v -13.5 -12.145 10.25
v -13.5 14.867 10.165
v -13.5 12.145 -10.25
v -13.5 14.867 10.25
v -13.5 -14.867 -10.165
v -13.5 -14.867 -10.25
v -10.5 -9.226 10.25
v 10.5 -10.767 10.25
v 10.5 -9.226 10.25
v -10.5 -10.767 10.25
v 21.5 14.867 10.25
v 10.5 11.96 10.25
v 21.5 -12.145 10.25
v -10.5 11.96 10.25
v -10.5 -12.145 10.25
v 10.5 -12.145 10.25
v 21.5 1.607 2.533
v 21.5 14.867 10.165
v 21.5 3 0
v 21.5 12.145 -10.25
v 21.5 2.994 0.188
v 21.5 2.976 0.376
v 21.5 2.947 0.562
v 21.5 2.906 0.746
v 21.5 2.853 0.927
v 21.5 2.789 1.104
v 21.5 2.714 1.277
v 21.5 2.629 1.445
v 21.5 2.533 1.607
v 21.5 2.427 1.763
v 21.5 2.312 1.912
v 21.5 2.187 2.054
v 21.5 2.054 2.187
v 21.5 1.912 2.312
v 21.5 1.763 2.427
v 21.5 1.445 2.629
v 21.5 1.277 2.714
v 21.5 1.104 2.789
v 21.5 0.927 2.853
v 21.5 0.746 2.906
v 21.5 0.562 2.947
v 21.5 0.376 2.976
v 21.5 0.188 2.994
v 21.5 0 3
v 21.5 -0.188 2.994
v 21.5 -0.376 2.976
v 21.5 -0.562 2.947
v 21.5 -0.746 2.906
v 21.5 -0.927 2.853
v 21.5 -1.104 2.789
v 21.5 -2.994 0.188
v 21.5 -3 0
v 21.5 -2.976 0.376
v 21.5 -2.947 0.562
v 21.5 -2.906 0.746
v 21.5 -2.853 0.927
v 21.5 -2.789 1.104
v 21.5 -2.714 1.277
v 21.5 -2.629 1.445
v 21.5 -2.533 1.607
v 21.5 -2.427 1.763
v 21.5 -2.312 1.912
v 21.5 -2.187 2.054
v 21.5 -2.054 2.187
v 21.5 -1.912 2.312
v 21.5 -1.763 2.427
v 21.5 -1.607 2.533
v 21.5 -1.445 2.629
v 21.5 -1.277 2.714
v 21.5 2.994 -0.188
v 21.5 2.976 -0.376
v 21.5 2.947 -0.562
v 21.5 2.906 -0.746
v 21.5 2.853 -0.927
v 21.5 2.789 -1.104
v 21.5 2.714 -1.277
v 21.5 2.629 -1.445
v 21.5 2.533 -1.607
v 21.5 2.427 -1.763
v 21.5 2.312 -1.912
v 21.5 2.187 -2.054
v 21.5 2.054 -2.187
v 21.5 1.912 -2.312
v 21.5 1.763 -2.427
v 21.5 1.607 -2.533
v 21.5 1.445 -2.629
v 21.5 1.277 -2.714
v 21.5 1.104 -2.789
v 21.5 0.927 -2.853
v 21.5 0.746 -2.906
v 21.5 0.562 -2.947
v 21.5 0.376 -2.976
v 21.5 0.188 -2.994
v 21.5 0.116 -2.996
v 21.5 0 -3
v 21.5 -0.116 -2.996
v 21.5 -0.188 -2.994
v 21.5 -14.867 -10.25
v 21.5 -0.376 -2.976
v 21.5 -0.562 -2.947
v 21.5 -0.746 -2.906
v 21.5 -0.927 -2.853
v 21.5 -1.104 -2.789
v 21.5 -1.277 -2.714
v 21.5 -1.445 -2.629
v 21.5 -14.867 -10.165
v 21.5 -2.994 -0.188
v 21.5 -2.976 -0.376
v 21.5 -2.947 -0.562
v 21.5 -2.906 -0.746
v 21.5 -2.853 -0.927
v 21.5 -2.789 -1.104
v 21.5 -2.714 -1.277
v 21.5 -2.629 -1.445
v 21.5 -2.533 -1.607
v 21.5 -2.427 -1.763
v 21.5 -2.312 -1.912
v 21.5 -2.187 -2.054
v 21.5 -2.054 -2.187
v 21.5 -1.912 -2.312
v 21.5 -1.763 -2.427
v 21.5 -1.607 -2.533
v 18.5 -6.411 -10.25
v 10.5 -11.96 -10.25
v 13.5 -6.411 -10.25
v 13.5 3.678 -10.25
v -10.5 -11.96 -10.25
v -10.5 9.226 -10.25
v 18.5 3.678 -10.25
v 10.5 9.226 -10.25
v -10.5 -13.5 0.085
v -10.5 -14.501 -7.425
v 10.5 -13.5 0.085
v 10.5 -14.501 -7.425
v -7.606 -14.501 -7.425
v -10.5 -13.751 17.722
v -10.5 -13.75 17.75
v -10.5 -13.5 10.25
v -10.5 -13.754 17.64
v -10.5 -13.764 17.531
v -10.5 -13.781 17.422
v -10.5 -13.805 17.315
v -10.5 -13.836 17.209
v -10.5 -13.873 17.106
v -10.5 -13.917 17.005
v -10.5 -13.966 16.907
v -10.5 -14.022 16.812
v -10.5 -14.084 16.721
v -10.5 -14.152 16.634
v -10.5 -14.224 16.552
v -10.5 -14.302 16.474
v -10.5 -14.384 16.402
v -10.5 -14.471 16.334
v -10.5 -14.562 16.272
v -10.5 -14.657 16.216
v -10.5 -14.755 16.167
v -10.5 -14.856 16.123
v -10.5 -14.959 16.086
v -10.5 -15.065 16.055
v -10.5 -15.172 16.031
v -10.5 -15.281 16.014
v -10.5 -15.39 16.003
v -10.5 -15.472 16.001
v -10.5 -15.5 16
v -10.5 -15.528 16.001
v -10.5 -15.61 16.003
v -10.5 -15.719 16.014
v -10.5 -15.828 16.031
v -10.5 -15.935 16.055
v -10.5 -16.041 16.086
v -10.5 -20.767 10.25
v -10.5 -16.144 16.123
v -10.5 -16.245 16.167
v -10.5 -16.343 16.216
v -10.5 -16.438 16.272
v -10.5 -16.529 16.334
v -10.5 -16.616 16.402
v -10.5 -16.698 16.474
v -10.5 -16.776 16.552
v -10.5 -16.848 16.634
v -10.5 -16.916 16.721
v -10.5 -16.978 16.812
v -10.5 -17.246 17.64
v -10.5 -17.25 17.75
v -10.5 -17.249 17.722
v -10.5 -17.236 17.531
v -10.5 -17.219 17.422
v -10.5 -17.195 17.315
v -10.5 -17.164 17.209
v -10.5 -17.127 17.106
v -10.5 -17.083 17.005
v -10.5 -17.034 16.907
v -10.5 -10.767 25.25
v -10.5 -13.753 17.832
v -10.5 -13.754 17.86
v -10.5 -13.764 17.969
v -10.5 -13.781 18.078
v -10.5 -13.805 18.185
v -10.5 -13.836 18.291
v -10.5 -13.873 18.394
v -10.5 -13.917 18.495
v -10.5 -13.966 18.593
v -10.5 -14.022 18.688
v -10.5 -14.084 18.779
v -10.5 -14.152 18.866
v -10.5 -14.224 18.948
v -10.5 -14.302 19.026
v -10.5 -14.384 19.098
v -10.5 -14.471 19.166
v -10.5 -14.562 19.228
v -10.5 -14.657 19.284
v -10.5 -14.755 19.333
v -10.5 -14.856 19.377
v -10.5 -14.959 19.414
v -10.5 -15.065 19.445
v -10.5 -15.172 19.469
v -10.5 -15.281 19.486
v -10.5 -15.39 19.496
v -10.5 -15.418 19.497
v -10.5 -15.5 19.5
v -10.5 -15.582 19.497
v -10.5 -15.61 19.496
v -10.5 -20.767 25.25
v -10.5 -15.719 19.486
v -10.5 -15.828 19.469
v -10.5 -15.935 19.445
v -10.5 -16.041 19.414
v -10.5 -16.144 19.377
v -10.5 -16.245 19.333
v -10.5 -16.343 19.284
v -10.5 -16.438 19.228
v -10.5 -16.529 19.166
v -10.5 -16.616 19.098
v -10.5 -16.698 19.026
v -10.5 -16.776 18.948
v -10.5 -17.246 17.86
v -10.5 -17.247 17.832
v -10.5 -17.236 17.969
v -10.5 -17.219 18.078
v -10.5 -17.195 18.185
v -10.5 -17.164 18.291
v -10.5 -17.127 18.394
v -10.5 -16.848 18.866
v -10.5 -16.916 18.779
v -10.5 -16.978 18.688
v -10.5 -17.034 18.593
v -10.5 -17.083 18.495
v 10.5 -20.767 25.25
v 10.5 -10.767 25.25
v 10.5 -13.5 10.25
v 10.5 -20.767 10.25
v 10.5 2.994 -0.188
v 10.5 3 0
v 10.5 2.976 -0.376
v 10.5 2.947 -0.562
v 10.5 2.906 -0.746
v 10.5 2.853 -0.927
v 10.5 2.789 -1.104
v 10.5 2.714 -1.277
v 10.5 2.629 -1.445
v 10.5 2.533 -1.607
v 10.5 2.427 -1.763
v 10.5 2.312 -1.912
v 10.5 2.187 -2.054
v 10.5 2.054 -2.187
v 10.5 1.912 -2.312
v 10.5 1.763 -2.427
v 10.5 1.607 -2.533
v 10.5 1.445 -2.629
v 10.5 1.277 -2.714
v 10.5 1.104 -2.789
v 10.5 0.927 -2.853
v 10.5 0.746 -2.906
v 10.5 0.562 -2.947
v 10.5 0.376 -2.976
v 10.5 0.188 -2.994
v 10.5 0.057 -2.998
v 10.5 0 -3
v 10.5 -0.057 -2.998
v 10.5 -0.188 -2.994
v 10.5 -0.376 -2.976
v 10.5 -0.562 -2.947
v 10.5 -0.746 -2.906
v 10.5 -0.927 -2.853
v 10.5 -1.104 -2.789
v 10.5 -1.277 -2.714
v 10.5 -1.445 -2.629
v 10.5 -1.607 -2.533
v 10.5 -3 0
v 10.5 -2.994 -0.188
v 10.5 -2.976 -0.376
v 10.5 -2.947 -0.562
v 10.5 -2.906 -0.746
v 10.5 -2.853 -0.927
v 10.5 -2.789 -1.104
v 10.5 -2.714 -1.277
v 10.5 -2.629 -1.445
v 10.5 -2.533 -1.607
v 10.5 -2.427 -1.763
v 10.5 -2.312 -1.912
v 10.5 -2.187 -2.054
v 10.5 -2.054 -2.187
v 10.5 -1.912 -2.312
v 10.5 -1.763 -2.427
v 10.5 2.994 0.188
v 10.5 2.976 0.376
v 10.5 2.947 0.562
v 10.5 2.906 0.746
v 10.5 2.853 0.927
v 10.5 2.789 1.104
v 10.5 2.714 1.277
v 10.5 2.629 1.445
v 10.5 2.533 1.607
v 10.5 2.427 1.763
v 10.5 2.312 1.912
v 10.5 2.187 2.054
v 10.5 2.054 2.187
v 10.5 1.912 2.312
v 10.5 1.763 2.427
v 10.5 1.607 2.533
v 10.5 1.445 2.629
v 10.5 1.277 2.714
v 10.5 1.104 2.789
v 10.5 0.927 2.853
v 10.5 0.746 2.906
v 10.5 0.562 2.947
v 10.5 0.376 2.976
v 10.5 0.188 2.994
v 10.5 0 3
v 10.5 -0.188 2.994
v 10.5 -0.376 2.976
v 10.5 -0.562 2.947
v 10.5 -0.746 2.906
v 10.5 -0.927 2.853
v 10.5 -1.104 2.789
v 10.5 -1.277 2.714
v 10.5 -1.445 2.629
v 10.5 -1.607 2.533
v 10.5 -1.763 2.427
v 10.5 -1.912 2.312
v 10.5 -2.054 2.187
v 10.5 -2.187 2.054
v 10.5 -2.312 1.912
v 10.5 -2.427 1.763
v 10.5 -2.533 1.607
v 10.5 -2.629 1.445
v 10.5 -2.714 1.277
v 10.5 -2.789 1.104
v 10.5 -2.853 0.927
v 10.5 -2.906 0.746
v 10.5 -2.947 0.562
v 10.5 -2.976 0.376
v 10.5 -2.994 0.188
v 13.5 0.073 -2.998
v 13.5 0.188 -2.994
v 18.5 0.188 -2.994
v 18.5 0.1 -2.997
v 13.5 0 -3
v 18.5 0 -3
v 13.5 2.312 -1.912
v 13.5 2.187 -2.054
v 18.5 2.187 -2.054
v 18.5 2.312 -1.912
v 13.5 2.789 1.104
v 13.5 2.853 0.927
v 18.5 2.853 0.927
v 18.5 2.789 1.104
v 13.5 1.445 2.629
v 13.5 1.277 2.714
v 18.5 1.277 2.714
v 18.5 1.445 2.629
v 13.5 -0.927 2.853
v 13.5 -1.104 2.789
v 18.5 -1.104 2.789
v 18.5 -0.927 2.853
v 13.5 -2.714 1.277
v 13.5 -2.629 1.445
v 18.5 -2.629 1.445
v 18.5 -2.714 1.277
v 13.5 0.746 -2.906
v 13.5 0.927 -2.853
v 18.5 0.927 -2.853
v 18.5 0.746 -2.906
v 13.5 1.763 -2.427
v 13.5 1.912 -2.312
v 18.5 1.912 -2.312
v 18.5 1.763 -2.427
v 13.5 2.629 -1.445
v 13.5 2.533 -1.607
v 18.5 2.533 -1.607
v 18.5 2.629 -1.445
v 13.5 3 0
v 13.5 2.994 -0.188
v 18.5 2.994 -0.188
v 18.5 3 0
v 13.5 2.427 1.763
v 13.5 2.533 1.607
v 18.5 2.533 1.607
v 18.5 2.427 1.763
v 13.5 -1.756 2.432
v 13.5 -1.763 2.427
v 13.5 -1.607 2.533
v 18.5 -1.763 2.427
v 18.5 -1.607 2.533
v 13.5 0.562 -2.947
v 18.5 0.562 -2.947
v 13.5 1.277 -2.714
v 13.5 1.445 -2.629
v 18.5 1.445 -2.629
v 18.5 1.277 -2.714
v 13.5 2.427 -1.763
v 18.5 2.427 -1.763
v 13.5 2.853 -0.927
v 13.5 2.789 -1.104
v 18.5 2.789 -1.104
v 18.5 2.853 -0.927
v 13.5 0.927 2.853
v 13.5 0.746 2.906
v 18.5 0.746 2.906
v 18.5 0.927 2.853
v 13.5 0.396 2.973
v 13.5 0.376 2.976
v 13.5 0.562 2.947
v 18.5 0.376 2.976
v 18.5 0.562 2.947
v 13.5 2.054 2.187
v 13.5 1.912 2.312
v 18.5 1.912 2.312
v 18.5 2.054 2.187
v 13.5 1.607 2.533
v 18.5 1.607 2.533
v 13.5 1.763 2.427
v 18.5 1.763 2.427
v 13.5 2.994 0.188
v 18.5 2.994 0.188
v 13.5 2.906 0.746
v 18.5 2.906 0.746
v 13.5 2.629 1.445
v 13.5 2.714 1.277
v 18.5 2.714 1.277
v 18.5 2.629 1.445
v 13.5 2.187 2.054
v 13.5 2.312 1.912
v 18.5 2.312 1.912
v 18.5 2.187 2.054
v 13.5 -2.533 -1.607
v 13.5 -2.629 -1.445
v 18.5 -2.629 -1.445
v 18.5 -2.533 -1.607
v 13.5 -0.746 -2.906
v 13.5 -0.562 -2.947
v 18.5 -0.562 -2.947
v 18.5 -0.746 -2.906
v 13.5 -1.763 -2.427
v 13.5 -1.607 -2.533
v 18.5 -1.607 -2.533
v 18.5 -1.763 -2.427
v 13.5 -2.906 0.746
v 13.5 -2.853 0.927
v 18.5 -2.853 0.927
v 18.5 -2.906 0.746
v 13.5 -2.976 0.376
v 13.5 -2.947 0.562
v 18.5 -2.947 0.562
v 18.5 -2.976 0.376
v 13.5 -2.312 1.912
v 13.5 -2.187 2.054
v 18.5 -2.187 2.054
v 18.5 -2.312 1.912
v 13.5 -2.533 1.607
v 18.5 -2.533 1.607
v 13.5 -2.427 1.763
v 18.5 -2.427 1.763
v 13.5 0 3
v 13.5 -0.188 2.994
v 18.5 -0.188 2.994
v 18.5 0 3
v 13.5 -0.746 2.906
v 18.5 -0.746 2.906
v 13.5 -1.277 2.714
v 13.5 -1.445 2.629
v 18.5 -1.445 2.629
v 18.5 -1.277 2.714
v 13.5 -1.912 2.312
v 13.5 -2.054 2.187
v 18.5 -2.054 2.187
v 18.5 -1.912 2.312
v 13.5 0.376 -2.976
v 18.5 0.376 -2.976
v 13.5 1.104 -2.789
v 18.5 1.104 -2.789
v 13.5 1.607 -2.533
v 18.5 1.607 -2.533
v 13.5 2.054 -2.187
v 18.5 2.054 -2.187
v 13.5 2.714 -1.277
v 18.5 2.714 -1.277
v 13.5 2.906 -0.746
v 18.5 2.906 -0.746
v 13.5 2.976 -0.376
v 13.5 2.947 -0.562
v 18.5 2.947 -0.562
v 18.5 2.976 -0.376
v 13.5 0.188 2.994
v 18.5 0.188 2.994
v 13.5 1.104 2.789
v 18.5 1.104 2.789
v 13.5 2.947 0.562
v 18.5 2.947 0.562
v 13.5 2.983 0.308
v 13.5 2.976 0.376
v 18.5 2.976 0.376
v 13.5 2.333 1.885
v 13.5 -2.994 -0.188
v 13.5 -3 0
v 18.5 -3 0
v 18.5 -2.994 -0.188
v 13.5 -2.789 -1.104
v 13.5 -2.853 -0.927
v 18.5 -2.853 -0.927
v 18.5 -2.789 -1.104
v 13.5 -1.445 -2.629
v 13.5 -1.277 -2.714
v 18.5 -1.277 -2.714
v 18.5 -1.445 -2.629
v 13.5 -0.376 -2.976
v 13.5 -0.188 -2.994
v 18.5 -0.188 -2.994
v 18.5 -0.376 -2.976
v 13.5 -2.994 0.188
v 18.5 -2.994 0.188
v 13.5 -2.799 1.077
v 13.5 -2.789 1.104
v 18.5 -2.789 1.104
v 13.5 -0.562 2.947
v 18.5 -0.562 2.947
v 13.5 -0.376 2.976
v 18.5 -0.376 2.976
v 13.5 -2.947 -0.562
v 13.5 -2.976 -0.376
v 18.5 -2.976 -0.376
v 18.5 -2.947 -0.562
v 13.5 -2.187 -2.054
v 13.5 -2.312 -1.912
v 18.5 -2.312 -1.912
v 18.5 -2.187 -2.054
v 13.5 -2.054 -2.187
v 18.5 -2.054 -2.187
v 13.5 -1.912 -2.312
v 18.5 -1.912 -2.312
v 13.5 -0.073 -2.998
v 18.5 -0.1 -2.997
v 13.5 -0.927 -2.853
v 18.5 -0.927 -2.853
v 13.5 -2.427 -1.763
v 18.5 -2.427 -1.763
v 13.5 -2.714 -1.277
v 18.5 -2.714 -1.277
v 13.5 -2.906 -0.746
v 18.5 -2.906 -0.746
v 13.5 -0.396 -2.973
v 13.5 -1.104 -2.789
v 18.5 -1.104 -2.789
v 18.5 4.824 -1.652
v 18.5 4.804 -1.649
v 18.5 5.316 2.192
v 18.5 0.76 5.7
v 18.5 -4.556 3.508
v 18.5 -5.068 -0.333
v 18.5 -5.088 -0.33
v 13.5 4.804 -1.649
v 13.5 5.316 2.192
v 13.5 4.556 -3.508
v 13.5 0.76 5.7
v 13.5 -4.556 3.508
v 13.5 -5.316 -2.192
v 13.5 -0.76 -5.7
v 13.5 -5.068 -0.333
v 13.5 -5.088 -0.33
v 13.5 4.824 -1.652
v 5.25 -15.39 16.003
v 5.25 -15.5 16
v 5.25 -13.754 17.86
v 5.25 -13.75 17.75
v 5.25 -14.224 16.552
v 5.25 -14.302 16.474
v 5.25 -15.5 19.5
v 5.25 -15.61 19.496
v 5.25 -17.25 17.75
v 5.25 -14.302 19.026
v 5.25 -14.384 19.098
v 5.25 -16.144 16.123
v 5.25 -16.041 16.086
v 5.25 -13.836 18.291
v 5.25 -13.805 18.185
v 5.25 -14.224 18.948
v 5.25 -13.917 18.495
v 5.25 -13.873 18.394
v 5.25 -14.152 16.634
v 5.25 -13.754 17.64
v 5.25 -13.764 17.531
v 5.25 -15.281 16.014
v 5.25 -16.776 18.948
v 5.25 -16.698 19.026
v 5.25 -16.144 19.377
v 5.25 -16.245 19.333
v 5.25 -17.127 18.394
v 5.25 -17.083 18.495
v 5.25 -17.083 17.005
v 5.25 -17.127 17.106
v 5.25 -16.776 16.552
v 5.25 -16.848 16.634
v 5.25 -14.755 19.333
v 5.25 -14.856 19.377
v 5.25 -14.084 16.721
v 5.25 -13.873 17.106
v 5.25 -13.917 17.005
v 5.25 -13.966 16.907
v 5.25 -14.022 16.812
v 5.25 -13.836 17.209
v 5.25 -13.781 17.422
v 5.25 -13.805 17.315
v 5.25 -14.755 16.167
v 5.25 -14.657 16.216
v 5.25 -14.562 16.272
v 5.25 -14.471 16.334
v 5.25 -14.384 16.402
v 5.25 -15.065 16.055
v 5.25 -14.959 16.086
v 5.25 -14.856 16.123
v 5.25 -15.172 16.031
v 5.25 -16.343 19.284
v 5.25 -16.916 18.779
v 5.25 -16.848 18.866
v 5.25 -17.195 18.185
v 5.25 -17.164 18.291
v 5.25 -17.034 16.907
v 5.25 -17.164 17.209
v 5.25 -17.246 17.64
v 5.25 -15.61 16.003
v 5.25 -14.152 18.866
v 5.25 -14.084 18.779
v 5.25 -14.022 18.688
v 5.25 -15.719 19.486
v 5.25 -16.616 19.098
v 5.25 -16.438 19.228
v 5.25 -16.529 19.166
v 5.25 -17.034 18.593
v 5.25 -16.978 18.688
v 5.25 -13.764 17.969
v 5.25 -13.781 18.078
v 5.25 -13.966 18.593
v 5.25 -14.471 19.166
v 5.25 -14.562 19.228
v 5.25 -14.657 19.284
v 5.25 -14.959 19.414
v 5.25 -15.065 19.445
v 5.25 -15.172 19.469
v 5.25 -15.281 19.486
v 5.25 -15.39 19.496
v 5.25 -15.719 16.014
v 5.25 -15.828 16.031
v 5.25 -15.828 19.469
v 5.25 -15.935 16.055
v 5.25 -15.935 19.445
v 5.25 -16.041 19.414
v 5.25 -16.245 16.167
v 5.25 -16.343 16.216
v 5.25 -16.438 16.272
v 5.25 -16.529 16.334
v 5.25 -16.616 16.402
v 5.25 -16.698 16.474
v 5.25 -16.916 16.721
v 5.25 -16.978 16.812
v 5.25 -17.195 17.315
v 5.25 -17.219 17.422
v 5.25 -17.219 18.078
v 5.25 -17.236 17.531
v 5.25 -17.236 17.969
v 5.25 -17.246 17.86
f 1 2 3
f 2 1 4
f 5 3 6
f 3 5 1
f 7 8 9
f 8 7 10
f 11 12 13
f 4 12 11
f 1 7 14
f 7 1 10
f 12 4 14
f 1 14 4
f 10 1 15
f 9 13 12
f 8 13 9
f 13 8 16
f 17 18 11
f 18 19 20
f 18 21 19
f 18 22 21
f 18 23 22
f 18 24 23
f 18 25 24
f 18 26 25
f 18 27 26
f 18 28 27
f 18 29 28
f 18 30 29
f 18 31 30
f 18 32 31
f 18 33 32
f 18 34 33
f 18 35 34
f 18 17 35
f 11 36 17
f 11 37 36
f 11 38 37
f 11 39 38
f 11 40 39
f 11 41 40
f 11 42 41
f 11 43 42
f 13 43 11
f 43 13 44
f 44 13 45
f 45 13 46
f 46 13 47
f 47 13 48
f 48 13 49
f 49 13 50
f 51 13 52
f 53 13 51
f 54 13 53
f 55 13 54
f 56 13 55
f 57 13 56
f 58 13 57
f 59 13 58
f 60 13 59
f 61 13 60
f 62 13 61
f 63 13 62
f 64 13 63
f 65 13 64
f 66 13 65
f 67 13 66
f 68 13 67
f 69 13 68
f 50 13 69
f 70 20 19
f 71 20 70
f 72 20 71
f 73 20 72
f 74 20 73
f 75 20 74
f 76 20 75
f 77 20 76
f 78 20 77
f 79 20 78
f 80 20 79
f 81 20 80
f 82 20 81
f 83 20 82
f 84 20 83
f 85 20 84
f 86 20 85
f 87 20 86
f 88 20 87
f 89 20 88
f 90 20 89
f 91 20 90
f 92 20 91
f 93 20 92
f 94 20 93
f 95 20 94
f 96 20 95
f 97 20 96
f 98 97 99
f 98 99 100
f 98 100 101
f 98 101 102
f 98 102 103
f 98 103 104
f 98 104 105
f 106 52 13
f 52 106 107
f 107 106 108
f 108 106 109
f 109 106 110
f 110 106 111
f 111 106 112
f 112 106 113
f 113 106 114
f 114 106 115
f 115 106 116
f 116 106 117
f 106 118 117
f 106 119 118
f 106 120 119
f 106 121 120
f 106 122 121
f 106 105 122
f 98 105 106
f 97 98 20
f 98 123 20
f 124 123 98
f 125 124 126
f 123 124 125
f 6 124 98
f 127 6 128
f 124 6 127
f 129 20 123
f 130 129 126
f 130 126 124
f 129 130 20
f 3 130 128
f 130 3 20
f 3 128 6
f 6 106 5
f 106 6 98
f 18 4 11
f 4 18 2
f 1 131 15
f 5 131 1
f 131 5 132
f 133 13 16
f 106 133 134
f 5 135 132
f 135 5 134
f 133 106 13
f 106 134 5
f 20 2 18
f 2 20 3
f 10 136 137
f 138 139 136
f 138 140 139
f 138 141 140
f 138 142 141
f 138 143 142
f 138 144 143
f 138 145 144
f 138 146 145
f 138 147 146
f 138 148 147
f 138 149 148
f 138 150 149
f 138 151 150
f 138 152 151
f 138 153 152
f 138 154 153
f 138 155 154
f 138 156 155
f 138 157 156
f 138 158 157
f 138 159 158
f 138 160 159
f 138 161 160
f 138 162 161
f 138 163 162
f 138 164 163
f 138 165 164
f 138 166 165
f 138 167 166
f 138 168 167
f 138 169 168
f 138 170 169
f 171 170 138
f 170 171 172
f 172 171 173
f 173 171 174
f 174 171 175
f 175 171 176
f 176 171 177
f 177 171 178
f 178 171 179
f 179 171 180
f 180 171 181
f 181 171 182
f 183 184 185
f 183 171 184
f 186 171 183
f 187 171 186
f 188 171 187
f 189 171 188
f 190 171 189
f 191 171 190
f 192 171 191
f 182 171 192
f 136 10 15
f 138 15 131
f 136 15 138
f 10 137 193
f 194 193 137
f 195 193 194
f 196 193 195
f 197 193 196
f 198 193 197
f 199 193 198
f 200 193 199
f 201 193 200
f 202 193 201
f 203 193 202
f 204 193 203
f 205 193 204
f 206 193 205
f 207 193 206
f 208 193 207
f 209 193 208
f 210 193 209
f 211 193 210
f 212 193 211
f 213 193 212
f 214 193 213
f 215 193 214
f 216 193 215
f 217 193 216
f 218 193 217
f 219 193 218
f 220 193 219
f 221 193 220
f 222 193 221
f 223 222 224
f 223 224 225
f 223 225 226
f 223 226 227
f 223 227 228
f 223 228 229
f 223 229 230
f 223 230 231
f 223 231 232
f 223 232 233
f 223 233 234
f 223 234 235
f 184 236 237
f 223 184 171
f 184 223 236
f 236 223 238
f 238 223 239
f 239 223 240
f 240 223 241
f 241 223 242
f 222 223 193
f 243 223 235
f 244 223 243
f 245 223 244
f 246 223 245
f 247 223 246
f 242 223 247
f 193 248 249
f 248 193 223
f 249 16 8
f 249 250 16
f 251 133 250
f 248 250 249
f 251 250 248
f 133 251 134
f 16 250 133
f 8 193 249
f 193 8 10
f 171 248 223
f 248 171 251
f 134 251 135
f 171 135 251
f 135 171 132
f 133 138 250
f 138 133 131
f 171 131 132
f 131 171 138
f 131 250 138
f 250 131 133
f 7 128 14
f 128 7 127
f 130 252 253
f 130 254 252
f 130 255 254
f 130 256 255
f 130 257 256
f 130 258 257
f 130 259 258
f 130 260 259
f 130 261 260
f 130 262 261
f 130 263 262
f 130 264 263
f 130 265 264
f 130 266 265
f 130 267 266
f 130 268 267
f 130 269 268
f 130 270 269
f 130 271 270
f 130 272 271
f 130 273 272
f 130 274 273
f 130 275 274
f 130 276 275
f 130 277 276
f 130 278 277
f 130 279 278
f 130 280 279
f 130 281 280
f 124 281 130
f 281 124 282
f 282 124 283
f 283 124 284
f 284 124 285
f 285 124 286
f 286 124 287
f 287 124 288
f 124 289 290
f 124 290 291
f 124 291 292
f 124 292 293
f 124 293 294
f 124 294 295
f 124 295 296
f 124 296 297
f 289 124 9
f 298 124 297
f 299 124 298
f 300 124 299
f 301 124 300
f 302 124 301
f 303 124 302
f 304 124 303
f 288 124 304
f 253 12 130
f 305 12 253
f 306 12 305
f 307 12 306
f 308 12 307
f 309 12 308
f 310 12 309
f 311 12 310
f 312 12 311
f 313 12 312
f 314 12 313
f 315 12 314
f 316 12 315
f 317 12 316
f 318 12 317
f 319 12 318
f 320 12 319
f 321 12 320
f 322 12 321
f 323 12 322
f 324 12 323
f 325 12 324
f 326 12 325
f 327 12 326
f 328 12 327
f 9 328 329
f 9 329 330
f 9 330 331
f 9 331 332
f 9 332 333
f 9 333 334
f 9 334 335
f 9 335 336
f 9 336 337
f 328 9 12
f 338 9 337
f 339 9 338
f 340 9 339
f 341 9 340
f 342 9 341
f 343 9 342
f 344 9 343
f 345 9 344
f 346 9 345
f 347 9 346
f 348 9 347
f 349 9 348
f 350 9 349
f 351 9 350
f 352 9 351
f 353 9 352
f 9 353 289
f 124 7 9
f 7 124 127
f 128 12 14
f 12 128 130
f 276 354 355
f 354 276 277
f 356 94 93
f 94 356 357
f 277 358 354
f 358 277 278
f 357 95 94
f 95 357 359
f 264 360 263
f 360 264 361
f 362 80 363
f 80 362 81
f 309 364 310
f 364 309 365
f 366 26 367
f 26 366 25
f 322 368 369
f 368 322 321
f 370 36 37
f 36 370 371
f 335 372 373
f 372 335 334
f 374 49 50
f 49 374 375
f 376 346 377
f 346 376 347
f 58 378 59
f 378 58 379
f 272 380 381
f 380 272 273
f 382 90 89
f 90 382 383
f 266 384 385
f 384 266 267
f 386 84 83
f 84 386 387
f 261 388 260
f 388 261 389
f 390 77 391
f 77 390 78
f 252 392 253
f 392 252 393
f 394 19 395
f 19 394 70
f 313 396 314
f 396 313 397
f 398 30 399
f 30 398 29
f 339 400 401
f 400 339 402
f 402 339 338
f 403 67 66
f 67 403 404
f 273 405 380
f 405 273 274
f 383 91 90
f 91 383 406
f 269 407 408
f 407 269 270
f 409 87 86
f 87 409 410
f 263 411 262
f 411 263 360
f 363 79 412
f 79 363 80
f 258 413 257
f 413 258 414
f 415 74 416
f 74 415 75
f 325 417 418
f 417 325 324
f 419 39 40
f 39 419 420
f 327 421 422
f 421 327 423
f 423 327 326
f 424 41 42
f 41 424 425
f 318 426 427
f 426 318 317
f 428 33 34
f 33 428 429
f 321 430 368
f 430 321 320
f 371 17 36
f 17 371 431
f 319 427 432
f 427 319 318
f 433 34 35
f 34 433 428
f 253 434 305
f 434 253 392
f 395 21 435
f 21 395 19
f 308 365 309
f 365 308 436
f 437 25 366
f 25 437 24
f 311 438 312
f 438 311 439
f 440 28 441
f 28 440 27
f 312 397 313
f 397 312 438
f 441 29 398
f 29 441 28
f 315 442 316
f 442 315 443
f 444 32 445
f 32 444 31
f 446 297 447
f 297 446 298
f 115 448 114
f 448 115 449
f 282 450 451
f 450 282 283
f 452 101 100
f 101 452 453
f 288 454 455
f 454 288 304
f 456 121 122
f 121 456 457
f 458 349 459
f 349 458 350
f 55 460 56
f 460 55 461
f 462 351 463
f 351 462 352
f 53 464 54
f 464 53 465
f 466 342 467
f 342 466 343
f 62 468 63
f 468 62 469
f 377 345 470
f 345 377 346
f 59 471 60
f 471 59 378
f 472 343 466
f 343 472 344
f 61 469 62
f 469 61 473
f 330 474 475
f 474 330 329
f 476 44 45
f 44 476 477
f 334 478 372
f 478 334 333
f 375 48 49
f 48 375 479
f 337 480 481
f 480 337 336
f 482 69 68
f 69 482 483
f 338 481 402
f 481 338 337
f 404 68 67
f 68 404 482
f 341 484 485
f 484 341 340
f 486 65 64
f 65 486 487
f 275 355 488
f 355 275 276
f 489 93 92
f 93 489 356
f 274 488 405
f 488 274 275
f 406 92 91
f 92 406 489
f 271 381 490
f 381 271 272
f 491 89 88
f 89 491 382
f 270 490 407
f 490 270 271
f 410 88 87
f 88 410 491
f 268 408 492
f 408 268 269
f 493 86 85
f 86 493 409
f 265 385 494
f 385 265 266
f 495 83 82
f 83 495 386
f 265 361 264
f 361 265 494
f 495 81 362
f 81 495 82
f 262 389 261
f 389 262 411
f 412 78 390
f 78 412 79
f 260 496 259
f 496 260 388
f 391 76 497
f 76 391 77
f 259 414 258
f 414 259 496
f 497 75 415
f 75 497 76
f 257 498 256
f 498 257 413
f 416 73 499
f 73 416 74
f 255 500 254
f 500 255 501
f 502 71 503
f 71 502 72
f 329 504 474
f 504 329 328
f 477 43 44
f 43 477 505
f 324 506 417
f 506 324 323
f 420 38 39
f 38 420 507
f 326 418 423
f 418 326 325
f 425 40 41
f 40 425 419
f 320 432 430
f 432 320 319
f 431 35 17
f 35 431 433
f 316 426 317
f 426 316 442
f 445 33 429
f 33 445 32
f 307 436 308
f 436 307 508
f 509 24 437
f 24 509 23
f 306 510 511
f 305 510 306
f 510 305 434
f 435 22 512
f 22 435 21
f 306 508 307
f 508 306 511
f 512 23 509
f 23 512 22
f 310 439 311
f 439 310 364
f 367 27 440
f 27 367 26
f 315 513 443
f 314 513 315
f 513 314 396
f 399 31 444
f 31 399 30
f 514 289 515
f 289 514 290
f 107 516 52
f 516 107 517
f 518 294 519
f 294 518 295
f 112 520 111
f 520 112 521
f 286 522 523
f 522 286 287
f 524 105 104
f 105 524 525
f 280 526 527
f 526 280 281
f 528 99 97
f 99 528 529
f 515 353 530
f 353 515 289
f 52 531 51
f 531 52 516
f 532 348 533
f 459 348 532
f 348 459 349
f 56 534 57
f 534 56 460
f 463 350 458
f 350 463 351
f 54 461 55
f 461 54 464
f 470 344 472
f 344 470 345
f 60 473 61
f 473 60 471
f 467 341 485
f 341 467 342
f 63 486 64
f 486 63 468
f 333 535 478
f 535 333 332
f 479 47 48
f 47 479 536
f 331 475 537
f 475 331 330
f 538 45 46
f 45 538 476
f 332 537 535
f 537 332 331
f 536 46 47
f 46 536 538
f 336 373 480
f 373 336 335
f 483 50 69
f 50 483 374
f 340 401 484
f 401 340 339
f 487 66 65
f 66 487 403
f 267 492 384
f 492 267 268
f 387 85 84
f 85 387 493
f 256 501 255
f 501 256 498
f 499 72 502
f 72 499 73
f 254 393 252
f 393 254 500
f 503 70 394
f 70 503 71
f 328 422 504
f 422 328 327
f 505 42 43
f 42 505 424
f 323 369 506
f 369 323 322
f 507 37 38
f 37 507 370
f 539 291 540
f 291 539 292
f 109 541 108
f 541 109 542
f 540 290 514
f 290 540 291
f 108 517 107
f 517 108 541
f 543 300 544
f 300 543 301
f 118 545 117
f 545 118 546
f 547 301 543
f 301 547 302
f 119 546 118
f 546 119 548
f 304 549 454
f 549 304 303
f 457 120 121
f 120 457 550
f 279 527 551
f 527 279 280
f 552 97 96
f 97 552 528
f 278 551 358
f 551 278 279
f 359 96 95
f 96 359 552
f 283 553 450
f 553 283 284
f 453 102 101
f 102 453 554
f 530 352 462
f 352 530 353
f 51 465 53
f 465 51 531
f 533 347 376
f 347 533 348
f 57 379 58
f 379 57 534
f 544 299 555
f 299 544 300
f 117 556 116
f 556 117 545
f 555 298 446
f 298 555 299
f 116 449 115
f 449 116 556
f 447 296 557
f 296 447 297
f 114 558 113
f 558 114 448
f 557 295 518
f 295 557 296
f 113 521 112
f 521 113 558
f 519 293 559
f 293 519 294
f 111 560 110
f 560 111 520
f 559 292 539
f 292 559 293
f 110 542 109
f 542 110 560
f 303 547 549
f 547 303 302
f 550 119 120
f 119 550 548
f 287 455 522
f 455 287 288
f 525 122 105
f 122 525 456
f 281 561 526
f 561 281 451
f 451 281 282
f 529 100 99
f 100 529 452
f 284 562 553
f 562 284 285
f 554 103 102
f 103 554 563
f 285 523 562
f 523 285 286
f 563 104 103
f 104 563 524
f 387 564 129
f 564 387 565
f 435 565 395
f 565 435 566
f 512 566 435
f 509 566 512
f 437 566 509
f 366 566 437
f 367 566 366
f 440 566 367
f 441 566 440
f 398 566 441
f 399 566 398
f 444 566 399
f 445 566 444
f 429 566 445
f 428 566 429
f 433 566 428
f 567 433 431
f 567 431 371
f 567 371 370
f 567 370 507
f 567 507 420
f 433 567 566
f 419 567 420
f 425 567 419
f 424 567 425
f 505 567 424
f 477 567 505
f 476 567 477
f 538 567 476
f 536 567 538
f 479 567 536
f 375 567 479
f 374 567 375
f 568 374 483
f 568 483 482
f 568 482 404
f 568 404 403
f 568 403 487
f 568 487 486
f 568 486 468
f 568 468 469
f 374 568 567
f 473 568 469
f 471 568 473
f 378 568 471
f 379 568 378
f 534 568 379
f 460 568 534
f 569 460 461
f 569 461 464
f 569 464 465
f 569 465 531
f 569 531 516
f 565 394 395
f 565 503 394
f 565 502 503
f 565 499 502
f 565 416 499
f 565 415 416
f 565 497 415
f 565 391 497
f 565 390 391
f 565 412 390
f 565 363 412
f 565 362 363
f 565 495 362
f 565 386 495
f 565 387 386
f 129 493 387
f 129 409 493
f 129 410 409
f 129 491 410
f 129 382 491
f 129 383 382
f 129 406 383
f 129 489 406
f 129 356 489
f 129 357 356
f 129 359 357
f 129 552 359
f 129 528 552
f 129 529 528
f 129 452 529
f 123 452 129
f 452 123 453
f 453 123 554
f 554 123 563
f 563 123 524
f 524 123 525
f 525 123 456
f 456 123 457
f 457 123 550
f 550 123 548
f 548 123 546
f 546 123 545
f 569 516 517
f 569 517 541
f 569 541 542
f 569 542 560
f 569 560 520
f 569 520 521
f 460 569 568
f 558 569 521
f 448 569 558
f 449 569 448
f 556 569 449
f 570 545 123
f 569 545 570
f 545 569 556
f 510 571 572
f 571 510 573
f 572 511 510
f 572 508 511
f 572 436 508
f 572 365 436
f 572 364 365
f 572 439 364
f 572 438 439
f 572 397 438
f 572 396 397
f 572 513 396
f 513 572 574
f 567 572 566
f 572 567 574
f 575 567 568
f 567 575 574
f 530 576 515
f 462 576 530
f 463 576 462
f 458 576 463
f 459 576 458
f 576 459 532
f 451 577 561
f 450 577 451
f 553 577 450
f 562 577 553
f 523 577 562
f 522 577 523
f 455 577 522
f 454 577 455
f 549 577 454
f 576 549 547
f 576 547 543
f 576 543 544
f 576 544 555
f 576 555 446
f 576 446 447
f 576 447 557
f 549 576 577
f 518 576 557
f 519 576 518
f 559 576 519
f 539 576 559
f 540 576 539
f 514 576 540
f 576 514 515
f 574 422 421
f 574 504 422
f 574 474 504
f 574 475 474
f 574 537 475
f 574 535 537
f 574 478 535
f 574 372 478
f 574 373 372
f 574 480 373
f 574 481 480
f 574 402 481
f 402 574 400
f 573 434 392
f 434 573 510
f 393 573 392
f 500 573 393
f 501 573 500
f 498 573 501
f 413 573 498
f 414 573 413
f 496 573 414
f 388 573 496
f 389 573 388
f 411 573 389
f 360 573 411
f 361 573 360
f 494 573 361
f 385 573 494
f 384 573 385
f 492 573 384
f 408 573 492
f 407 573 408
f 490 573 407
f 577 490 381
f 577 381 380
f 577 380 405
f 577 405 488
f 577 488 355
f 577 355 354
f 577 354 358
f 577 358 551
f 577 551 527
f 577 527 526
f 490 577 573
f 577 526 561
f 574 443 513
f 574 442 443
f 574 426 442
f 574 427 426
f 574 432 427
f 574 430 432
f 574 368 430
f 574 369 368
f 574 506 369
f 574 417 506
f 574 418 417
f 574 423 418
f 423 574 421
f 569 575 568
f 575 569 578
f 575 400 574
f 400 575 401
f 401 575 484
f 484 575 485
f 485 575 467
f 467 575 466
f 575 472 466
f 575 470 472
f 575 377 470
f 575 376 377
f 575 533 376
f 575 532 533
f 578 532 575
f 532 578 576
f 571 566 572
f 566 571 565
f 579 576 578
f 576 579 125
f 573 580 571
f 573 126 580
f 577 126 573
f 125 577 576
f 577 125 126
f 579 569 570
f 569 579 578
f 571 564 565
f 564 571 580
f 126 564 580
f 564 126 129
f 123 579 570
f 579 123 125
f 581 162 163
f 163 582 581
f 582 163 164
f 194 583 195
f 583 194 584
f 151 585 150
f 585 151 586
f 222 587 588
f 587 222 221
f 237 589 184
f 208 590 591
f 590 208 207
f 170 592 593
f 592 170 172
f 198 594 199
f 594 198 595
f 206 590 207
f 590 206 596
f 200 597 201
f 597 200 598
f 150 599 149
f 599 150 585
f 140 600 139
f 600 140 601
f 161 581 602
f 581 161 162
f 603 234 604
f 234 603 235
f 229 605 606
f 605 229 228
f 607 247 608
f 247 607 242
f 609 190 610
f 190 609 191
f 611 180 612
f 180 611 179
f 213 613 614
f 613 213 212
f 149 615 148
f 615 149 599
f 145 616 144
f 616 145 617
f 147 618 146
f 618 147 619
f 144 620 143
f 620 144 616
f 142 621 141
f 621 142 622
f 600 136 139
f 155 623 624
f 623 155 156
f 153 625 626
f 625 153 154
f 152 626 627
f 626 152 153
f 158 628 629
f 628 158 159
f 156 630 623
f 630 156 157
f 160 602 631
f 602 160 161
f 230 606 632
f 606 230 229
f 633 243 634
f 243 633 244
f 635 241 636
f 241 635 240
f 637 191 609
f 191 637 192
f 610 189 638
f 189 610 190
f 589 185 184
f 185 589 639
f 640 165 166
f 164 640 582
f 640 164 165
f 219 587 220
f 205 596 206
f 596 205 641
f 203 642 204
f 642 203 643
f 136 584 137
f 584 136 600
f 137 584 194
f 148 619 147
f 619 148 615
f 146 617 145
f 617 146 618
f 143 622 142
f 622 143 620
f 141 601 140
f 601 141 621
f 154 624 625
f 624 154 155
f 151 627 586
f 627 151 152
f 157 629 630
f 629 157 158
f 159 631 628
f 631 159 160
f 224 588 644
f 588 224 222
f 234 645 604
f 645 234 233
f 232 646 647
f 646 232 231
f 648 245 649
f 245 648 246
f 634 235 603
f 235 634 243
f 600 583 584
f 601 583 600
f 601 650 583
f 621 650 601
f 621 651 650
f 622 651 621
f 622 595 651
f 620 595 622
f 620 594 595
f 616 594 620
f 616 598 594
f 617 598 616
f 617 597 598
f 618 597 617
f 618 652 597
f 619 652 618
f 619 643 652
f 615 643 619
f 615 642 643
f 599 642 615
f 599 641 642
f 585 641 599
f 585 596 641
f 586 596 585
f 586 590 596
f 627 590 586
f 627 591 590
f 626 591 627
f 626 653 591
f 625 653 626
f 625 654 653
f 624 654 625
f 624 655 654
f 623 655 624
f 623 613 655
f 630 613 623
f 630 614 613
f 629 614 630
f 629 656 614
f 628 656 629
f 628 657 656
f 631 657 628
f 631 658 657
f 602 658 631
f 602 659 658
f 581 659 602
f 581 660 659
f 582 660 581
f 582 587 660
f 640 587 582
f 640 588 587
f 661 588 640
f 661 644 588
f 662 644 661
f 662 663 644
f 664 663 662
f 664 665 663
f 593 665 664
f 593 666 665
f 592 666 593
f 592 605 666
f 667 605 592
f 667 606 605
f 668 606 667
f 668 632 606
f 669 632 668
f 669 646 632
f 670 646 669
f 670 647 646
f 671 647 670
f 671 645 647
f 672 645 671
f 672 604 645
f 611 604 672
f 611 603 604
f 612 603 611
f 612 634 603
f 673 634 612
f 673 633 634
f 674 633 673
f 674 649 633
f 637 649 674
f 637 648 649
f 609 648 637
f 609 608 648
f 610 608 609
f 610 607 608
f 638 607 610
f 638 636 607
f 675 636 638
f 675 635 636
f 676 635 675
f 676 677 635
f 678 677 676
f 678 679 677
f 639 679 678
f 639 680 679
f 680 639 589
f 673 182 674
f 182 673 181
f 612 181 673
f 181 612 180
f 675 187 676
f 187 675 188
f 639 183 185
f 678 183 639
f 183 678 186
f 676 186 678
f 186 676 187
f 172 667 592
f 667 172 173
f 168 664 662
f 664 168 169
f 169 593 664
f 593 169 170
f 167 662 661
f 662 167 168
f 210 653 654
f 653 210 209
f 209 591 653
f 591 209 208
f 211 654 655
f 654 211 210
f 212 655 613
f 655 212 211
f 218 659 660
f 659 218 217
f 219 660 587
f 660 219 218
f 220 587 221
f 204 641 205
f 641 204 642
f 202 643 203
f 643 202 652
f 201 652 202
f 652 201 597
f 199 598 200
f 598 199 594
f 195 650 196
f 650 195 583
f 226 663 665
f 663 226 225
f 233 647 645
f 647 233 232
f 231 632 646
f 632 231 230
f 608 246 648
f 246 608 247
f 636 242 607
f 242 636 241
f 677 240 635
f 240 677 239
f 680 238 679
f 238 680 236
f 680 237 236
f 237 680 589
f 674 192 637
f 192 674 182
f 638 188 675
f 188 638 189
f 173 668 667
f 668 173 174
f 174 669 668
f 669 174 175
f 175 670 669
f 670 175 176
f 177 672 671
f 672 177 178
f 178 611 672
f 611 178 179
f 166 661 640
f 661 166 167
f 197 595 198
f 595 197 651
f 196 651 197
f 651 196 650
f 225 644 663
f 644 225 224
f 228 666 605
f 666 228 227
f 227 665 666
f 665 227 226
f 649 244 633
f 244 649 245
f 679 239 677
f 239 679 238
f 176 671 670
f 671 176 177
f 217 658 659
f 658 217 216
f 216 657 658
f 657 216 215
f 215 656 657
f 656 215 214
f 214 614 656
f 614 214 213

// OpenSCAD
cote_barre = 20.5+0.5;
angle = 90-atan(7.5);
epaisseur = 3;
diametre_vis = 6;
diametre_vis_fixation = 3.5;
diametre_ecrou = 11.5;
largeur_ecrou = 10;
epaisseur_ecrou = 5;

hauteur_bloc = 20.5;
longueur_bloc = cote_barre+2*epaisseur;
largeur_bloc = cote_barre+3*epaisseur+epaisseur_ecrou;
largeur_fixation = 10;
hauteur_fixation = 15;

supplement = hauteur_bloc*tan(angle);


module barre(){
    cube([cote_barre, cote_barre, 100], center=true);
}

module fixation(){
    cube([cote_barre,largeur_fixation,hauteur_fixation], center=true);
    translate([0,0,-hauteur_fixation]/2)
    rotate([0,270,0])
    translate([0,-largeur_fixation/2,0])
    prisme(largeur_fixation-supplement, -hauteur_bloc, cote_barre);
    translate([-cote_barre/2,(largeur_fixation)/2-supplement,-(hauteur_bloc+hauteur_fixation)/2])
    cube([cote_barre, supplement, hauteur_bloc]);
}

module prisme_angle(base, angle, longueur){
    oppose = base*tan(angle);
    linear_extrude(height=longueur, center=true, convexity = 0, twist = 0) 
                polygon(points=[
                    [0,0],
                    [0,base],
                    [-oppose,base],
                    ], paths=[[0,1,2]]);
}

module prisme(cote1, cote2, longueur){
    linear_extrude(height=longueur, center=true, convexity = 0, twist = 0) 
                polygon(points=[
                    [0,0],
                    [0,cote1],
                    [cote2,cote1],
                    ], paths=[[0,1,2]]);
}

module trapeze(){
    
    difference(){
        cube([largeur_bloc,longueur_bloc+supplement, hauteur_bloc], center = true);
        translate([0,-(longueur_bloc-supplement)/2-0.01,hauteur_bloc/2+0.01])
        rotate([0,90,0])
        prisme(-supplement, hauteur_bloc, largeur_bloc+1);
        translate([0,(longueur_bloc-supplement)/2+0.01,-hauteur_bloc/2-0.01])
        rotate([0,270,0])
        prisme(supplement, hauteur_bloc, largeur_bloc+1);
    }
}

module part1(){
    position_ecrou = (cote_barre+epaisseur_ecrou)/2+epaisseur;
    difference(){
        union(){
            translate([-epaisseur+(largeur_bloc-cote_barre)/2,0,0])
            trapeze();
            translate([0,supplement-(longueur_bloc+largeur_fixation)/2,(hauteur_bloc+hauteur_fixation)/2])
            fixation();
        }
        rotate([-angle, 0, 0])
        barre();
        
        rotate([0, 90, 0])
        cylinder(d=diametre_vis, h=largeur_bloc, $fn=100);

        translate([position_ecrou,0,0])
        rotate([-angle, 0, 0])
        rotate([0, 90, 0])
        cylinder(d=diametre_ecrou, h=epaisseur_ecrou, $fn=6, center=true);

        rotate([-angle, 0, 0])
        translate([position_ecrou,0,-hauteur_bloc/4-1])  
        cube([epaisseur_ecrou,largeur_ecrou,hauteur_bloc/2], center=true);
        
        translate([-cote_barre/4,epaisseur-(longueur_bloc+largeur_fixation)/2,(hauteur_bloc+hauteur_fixation)/2]) 
        rotate([0, 90, 0])
        #cylinder(d=diametre_vis_fixation, h=cote_barre, $fn=100, center=true);
    }
}

part1();
